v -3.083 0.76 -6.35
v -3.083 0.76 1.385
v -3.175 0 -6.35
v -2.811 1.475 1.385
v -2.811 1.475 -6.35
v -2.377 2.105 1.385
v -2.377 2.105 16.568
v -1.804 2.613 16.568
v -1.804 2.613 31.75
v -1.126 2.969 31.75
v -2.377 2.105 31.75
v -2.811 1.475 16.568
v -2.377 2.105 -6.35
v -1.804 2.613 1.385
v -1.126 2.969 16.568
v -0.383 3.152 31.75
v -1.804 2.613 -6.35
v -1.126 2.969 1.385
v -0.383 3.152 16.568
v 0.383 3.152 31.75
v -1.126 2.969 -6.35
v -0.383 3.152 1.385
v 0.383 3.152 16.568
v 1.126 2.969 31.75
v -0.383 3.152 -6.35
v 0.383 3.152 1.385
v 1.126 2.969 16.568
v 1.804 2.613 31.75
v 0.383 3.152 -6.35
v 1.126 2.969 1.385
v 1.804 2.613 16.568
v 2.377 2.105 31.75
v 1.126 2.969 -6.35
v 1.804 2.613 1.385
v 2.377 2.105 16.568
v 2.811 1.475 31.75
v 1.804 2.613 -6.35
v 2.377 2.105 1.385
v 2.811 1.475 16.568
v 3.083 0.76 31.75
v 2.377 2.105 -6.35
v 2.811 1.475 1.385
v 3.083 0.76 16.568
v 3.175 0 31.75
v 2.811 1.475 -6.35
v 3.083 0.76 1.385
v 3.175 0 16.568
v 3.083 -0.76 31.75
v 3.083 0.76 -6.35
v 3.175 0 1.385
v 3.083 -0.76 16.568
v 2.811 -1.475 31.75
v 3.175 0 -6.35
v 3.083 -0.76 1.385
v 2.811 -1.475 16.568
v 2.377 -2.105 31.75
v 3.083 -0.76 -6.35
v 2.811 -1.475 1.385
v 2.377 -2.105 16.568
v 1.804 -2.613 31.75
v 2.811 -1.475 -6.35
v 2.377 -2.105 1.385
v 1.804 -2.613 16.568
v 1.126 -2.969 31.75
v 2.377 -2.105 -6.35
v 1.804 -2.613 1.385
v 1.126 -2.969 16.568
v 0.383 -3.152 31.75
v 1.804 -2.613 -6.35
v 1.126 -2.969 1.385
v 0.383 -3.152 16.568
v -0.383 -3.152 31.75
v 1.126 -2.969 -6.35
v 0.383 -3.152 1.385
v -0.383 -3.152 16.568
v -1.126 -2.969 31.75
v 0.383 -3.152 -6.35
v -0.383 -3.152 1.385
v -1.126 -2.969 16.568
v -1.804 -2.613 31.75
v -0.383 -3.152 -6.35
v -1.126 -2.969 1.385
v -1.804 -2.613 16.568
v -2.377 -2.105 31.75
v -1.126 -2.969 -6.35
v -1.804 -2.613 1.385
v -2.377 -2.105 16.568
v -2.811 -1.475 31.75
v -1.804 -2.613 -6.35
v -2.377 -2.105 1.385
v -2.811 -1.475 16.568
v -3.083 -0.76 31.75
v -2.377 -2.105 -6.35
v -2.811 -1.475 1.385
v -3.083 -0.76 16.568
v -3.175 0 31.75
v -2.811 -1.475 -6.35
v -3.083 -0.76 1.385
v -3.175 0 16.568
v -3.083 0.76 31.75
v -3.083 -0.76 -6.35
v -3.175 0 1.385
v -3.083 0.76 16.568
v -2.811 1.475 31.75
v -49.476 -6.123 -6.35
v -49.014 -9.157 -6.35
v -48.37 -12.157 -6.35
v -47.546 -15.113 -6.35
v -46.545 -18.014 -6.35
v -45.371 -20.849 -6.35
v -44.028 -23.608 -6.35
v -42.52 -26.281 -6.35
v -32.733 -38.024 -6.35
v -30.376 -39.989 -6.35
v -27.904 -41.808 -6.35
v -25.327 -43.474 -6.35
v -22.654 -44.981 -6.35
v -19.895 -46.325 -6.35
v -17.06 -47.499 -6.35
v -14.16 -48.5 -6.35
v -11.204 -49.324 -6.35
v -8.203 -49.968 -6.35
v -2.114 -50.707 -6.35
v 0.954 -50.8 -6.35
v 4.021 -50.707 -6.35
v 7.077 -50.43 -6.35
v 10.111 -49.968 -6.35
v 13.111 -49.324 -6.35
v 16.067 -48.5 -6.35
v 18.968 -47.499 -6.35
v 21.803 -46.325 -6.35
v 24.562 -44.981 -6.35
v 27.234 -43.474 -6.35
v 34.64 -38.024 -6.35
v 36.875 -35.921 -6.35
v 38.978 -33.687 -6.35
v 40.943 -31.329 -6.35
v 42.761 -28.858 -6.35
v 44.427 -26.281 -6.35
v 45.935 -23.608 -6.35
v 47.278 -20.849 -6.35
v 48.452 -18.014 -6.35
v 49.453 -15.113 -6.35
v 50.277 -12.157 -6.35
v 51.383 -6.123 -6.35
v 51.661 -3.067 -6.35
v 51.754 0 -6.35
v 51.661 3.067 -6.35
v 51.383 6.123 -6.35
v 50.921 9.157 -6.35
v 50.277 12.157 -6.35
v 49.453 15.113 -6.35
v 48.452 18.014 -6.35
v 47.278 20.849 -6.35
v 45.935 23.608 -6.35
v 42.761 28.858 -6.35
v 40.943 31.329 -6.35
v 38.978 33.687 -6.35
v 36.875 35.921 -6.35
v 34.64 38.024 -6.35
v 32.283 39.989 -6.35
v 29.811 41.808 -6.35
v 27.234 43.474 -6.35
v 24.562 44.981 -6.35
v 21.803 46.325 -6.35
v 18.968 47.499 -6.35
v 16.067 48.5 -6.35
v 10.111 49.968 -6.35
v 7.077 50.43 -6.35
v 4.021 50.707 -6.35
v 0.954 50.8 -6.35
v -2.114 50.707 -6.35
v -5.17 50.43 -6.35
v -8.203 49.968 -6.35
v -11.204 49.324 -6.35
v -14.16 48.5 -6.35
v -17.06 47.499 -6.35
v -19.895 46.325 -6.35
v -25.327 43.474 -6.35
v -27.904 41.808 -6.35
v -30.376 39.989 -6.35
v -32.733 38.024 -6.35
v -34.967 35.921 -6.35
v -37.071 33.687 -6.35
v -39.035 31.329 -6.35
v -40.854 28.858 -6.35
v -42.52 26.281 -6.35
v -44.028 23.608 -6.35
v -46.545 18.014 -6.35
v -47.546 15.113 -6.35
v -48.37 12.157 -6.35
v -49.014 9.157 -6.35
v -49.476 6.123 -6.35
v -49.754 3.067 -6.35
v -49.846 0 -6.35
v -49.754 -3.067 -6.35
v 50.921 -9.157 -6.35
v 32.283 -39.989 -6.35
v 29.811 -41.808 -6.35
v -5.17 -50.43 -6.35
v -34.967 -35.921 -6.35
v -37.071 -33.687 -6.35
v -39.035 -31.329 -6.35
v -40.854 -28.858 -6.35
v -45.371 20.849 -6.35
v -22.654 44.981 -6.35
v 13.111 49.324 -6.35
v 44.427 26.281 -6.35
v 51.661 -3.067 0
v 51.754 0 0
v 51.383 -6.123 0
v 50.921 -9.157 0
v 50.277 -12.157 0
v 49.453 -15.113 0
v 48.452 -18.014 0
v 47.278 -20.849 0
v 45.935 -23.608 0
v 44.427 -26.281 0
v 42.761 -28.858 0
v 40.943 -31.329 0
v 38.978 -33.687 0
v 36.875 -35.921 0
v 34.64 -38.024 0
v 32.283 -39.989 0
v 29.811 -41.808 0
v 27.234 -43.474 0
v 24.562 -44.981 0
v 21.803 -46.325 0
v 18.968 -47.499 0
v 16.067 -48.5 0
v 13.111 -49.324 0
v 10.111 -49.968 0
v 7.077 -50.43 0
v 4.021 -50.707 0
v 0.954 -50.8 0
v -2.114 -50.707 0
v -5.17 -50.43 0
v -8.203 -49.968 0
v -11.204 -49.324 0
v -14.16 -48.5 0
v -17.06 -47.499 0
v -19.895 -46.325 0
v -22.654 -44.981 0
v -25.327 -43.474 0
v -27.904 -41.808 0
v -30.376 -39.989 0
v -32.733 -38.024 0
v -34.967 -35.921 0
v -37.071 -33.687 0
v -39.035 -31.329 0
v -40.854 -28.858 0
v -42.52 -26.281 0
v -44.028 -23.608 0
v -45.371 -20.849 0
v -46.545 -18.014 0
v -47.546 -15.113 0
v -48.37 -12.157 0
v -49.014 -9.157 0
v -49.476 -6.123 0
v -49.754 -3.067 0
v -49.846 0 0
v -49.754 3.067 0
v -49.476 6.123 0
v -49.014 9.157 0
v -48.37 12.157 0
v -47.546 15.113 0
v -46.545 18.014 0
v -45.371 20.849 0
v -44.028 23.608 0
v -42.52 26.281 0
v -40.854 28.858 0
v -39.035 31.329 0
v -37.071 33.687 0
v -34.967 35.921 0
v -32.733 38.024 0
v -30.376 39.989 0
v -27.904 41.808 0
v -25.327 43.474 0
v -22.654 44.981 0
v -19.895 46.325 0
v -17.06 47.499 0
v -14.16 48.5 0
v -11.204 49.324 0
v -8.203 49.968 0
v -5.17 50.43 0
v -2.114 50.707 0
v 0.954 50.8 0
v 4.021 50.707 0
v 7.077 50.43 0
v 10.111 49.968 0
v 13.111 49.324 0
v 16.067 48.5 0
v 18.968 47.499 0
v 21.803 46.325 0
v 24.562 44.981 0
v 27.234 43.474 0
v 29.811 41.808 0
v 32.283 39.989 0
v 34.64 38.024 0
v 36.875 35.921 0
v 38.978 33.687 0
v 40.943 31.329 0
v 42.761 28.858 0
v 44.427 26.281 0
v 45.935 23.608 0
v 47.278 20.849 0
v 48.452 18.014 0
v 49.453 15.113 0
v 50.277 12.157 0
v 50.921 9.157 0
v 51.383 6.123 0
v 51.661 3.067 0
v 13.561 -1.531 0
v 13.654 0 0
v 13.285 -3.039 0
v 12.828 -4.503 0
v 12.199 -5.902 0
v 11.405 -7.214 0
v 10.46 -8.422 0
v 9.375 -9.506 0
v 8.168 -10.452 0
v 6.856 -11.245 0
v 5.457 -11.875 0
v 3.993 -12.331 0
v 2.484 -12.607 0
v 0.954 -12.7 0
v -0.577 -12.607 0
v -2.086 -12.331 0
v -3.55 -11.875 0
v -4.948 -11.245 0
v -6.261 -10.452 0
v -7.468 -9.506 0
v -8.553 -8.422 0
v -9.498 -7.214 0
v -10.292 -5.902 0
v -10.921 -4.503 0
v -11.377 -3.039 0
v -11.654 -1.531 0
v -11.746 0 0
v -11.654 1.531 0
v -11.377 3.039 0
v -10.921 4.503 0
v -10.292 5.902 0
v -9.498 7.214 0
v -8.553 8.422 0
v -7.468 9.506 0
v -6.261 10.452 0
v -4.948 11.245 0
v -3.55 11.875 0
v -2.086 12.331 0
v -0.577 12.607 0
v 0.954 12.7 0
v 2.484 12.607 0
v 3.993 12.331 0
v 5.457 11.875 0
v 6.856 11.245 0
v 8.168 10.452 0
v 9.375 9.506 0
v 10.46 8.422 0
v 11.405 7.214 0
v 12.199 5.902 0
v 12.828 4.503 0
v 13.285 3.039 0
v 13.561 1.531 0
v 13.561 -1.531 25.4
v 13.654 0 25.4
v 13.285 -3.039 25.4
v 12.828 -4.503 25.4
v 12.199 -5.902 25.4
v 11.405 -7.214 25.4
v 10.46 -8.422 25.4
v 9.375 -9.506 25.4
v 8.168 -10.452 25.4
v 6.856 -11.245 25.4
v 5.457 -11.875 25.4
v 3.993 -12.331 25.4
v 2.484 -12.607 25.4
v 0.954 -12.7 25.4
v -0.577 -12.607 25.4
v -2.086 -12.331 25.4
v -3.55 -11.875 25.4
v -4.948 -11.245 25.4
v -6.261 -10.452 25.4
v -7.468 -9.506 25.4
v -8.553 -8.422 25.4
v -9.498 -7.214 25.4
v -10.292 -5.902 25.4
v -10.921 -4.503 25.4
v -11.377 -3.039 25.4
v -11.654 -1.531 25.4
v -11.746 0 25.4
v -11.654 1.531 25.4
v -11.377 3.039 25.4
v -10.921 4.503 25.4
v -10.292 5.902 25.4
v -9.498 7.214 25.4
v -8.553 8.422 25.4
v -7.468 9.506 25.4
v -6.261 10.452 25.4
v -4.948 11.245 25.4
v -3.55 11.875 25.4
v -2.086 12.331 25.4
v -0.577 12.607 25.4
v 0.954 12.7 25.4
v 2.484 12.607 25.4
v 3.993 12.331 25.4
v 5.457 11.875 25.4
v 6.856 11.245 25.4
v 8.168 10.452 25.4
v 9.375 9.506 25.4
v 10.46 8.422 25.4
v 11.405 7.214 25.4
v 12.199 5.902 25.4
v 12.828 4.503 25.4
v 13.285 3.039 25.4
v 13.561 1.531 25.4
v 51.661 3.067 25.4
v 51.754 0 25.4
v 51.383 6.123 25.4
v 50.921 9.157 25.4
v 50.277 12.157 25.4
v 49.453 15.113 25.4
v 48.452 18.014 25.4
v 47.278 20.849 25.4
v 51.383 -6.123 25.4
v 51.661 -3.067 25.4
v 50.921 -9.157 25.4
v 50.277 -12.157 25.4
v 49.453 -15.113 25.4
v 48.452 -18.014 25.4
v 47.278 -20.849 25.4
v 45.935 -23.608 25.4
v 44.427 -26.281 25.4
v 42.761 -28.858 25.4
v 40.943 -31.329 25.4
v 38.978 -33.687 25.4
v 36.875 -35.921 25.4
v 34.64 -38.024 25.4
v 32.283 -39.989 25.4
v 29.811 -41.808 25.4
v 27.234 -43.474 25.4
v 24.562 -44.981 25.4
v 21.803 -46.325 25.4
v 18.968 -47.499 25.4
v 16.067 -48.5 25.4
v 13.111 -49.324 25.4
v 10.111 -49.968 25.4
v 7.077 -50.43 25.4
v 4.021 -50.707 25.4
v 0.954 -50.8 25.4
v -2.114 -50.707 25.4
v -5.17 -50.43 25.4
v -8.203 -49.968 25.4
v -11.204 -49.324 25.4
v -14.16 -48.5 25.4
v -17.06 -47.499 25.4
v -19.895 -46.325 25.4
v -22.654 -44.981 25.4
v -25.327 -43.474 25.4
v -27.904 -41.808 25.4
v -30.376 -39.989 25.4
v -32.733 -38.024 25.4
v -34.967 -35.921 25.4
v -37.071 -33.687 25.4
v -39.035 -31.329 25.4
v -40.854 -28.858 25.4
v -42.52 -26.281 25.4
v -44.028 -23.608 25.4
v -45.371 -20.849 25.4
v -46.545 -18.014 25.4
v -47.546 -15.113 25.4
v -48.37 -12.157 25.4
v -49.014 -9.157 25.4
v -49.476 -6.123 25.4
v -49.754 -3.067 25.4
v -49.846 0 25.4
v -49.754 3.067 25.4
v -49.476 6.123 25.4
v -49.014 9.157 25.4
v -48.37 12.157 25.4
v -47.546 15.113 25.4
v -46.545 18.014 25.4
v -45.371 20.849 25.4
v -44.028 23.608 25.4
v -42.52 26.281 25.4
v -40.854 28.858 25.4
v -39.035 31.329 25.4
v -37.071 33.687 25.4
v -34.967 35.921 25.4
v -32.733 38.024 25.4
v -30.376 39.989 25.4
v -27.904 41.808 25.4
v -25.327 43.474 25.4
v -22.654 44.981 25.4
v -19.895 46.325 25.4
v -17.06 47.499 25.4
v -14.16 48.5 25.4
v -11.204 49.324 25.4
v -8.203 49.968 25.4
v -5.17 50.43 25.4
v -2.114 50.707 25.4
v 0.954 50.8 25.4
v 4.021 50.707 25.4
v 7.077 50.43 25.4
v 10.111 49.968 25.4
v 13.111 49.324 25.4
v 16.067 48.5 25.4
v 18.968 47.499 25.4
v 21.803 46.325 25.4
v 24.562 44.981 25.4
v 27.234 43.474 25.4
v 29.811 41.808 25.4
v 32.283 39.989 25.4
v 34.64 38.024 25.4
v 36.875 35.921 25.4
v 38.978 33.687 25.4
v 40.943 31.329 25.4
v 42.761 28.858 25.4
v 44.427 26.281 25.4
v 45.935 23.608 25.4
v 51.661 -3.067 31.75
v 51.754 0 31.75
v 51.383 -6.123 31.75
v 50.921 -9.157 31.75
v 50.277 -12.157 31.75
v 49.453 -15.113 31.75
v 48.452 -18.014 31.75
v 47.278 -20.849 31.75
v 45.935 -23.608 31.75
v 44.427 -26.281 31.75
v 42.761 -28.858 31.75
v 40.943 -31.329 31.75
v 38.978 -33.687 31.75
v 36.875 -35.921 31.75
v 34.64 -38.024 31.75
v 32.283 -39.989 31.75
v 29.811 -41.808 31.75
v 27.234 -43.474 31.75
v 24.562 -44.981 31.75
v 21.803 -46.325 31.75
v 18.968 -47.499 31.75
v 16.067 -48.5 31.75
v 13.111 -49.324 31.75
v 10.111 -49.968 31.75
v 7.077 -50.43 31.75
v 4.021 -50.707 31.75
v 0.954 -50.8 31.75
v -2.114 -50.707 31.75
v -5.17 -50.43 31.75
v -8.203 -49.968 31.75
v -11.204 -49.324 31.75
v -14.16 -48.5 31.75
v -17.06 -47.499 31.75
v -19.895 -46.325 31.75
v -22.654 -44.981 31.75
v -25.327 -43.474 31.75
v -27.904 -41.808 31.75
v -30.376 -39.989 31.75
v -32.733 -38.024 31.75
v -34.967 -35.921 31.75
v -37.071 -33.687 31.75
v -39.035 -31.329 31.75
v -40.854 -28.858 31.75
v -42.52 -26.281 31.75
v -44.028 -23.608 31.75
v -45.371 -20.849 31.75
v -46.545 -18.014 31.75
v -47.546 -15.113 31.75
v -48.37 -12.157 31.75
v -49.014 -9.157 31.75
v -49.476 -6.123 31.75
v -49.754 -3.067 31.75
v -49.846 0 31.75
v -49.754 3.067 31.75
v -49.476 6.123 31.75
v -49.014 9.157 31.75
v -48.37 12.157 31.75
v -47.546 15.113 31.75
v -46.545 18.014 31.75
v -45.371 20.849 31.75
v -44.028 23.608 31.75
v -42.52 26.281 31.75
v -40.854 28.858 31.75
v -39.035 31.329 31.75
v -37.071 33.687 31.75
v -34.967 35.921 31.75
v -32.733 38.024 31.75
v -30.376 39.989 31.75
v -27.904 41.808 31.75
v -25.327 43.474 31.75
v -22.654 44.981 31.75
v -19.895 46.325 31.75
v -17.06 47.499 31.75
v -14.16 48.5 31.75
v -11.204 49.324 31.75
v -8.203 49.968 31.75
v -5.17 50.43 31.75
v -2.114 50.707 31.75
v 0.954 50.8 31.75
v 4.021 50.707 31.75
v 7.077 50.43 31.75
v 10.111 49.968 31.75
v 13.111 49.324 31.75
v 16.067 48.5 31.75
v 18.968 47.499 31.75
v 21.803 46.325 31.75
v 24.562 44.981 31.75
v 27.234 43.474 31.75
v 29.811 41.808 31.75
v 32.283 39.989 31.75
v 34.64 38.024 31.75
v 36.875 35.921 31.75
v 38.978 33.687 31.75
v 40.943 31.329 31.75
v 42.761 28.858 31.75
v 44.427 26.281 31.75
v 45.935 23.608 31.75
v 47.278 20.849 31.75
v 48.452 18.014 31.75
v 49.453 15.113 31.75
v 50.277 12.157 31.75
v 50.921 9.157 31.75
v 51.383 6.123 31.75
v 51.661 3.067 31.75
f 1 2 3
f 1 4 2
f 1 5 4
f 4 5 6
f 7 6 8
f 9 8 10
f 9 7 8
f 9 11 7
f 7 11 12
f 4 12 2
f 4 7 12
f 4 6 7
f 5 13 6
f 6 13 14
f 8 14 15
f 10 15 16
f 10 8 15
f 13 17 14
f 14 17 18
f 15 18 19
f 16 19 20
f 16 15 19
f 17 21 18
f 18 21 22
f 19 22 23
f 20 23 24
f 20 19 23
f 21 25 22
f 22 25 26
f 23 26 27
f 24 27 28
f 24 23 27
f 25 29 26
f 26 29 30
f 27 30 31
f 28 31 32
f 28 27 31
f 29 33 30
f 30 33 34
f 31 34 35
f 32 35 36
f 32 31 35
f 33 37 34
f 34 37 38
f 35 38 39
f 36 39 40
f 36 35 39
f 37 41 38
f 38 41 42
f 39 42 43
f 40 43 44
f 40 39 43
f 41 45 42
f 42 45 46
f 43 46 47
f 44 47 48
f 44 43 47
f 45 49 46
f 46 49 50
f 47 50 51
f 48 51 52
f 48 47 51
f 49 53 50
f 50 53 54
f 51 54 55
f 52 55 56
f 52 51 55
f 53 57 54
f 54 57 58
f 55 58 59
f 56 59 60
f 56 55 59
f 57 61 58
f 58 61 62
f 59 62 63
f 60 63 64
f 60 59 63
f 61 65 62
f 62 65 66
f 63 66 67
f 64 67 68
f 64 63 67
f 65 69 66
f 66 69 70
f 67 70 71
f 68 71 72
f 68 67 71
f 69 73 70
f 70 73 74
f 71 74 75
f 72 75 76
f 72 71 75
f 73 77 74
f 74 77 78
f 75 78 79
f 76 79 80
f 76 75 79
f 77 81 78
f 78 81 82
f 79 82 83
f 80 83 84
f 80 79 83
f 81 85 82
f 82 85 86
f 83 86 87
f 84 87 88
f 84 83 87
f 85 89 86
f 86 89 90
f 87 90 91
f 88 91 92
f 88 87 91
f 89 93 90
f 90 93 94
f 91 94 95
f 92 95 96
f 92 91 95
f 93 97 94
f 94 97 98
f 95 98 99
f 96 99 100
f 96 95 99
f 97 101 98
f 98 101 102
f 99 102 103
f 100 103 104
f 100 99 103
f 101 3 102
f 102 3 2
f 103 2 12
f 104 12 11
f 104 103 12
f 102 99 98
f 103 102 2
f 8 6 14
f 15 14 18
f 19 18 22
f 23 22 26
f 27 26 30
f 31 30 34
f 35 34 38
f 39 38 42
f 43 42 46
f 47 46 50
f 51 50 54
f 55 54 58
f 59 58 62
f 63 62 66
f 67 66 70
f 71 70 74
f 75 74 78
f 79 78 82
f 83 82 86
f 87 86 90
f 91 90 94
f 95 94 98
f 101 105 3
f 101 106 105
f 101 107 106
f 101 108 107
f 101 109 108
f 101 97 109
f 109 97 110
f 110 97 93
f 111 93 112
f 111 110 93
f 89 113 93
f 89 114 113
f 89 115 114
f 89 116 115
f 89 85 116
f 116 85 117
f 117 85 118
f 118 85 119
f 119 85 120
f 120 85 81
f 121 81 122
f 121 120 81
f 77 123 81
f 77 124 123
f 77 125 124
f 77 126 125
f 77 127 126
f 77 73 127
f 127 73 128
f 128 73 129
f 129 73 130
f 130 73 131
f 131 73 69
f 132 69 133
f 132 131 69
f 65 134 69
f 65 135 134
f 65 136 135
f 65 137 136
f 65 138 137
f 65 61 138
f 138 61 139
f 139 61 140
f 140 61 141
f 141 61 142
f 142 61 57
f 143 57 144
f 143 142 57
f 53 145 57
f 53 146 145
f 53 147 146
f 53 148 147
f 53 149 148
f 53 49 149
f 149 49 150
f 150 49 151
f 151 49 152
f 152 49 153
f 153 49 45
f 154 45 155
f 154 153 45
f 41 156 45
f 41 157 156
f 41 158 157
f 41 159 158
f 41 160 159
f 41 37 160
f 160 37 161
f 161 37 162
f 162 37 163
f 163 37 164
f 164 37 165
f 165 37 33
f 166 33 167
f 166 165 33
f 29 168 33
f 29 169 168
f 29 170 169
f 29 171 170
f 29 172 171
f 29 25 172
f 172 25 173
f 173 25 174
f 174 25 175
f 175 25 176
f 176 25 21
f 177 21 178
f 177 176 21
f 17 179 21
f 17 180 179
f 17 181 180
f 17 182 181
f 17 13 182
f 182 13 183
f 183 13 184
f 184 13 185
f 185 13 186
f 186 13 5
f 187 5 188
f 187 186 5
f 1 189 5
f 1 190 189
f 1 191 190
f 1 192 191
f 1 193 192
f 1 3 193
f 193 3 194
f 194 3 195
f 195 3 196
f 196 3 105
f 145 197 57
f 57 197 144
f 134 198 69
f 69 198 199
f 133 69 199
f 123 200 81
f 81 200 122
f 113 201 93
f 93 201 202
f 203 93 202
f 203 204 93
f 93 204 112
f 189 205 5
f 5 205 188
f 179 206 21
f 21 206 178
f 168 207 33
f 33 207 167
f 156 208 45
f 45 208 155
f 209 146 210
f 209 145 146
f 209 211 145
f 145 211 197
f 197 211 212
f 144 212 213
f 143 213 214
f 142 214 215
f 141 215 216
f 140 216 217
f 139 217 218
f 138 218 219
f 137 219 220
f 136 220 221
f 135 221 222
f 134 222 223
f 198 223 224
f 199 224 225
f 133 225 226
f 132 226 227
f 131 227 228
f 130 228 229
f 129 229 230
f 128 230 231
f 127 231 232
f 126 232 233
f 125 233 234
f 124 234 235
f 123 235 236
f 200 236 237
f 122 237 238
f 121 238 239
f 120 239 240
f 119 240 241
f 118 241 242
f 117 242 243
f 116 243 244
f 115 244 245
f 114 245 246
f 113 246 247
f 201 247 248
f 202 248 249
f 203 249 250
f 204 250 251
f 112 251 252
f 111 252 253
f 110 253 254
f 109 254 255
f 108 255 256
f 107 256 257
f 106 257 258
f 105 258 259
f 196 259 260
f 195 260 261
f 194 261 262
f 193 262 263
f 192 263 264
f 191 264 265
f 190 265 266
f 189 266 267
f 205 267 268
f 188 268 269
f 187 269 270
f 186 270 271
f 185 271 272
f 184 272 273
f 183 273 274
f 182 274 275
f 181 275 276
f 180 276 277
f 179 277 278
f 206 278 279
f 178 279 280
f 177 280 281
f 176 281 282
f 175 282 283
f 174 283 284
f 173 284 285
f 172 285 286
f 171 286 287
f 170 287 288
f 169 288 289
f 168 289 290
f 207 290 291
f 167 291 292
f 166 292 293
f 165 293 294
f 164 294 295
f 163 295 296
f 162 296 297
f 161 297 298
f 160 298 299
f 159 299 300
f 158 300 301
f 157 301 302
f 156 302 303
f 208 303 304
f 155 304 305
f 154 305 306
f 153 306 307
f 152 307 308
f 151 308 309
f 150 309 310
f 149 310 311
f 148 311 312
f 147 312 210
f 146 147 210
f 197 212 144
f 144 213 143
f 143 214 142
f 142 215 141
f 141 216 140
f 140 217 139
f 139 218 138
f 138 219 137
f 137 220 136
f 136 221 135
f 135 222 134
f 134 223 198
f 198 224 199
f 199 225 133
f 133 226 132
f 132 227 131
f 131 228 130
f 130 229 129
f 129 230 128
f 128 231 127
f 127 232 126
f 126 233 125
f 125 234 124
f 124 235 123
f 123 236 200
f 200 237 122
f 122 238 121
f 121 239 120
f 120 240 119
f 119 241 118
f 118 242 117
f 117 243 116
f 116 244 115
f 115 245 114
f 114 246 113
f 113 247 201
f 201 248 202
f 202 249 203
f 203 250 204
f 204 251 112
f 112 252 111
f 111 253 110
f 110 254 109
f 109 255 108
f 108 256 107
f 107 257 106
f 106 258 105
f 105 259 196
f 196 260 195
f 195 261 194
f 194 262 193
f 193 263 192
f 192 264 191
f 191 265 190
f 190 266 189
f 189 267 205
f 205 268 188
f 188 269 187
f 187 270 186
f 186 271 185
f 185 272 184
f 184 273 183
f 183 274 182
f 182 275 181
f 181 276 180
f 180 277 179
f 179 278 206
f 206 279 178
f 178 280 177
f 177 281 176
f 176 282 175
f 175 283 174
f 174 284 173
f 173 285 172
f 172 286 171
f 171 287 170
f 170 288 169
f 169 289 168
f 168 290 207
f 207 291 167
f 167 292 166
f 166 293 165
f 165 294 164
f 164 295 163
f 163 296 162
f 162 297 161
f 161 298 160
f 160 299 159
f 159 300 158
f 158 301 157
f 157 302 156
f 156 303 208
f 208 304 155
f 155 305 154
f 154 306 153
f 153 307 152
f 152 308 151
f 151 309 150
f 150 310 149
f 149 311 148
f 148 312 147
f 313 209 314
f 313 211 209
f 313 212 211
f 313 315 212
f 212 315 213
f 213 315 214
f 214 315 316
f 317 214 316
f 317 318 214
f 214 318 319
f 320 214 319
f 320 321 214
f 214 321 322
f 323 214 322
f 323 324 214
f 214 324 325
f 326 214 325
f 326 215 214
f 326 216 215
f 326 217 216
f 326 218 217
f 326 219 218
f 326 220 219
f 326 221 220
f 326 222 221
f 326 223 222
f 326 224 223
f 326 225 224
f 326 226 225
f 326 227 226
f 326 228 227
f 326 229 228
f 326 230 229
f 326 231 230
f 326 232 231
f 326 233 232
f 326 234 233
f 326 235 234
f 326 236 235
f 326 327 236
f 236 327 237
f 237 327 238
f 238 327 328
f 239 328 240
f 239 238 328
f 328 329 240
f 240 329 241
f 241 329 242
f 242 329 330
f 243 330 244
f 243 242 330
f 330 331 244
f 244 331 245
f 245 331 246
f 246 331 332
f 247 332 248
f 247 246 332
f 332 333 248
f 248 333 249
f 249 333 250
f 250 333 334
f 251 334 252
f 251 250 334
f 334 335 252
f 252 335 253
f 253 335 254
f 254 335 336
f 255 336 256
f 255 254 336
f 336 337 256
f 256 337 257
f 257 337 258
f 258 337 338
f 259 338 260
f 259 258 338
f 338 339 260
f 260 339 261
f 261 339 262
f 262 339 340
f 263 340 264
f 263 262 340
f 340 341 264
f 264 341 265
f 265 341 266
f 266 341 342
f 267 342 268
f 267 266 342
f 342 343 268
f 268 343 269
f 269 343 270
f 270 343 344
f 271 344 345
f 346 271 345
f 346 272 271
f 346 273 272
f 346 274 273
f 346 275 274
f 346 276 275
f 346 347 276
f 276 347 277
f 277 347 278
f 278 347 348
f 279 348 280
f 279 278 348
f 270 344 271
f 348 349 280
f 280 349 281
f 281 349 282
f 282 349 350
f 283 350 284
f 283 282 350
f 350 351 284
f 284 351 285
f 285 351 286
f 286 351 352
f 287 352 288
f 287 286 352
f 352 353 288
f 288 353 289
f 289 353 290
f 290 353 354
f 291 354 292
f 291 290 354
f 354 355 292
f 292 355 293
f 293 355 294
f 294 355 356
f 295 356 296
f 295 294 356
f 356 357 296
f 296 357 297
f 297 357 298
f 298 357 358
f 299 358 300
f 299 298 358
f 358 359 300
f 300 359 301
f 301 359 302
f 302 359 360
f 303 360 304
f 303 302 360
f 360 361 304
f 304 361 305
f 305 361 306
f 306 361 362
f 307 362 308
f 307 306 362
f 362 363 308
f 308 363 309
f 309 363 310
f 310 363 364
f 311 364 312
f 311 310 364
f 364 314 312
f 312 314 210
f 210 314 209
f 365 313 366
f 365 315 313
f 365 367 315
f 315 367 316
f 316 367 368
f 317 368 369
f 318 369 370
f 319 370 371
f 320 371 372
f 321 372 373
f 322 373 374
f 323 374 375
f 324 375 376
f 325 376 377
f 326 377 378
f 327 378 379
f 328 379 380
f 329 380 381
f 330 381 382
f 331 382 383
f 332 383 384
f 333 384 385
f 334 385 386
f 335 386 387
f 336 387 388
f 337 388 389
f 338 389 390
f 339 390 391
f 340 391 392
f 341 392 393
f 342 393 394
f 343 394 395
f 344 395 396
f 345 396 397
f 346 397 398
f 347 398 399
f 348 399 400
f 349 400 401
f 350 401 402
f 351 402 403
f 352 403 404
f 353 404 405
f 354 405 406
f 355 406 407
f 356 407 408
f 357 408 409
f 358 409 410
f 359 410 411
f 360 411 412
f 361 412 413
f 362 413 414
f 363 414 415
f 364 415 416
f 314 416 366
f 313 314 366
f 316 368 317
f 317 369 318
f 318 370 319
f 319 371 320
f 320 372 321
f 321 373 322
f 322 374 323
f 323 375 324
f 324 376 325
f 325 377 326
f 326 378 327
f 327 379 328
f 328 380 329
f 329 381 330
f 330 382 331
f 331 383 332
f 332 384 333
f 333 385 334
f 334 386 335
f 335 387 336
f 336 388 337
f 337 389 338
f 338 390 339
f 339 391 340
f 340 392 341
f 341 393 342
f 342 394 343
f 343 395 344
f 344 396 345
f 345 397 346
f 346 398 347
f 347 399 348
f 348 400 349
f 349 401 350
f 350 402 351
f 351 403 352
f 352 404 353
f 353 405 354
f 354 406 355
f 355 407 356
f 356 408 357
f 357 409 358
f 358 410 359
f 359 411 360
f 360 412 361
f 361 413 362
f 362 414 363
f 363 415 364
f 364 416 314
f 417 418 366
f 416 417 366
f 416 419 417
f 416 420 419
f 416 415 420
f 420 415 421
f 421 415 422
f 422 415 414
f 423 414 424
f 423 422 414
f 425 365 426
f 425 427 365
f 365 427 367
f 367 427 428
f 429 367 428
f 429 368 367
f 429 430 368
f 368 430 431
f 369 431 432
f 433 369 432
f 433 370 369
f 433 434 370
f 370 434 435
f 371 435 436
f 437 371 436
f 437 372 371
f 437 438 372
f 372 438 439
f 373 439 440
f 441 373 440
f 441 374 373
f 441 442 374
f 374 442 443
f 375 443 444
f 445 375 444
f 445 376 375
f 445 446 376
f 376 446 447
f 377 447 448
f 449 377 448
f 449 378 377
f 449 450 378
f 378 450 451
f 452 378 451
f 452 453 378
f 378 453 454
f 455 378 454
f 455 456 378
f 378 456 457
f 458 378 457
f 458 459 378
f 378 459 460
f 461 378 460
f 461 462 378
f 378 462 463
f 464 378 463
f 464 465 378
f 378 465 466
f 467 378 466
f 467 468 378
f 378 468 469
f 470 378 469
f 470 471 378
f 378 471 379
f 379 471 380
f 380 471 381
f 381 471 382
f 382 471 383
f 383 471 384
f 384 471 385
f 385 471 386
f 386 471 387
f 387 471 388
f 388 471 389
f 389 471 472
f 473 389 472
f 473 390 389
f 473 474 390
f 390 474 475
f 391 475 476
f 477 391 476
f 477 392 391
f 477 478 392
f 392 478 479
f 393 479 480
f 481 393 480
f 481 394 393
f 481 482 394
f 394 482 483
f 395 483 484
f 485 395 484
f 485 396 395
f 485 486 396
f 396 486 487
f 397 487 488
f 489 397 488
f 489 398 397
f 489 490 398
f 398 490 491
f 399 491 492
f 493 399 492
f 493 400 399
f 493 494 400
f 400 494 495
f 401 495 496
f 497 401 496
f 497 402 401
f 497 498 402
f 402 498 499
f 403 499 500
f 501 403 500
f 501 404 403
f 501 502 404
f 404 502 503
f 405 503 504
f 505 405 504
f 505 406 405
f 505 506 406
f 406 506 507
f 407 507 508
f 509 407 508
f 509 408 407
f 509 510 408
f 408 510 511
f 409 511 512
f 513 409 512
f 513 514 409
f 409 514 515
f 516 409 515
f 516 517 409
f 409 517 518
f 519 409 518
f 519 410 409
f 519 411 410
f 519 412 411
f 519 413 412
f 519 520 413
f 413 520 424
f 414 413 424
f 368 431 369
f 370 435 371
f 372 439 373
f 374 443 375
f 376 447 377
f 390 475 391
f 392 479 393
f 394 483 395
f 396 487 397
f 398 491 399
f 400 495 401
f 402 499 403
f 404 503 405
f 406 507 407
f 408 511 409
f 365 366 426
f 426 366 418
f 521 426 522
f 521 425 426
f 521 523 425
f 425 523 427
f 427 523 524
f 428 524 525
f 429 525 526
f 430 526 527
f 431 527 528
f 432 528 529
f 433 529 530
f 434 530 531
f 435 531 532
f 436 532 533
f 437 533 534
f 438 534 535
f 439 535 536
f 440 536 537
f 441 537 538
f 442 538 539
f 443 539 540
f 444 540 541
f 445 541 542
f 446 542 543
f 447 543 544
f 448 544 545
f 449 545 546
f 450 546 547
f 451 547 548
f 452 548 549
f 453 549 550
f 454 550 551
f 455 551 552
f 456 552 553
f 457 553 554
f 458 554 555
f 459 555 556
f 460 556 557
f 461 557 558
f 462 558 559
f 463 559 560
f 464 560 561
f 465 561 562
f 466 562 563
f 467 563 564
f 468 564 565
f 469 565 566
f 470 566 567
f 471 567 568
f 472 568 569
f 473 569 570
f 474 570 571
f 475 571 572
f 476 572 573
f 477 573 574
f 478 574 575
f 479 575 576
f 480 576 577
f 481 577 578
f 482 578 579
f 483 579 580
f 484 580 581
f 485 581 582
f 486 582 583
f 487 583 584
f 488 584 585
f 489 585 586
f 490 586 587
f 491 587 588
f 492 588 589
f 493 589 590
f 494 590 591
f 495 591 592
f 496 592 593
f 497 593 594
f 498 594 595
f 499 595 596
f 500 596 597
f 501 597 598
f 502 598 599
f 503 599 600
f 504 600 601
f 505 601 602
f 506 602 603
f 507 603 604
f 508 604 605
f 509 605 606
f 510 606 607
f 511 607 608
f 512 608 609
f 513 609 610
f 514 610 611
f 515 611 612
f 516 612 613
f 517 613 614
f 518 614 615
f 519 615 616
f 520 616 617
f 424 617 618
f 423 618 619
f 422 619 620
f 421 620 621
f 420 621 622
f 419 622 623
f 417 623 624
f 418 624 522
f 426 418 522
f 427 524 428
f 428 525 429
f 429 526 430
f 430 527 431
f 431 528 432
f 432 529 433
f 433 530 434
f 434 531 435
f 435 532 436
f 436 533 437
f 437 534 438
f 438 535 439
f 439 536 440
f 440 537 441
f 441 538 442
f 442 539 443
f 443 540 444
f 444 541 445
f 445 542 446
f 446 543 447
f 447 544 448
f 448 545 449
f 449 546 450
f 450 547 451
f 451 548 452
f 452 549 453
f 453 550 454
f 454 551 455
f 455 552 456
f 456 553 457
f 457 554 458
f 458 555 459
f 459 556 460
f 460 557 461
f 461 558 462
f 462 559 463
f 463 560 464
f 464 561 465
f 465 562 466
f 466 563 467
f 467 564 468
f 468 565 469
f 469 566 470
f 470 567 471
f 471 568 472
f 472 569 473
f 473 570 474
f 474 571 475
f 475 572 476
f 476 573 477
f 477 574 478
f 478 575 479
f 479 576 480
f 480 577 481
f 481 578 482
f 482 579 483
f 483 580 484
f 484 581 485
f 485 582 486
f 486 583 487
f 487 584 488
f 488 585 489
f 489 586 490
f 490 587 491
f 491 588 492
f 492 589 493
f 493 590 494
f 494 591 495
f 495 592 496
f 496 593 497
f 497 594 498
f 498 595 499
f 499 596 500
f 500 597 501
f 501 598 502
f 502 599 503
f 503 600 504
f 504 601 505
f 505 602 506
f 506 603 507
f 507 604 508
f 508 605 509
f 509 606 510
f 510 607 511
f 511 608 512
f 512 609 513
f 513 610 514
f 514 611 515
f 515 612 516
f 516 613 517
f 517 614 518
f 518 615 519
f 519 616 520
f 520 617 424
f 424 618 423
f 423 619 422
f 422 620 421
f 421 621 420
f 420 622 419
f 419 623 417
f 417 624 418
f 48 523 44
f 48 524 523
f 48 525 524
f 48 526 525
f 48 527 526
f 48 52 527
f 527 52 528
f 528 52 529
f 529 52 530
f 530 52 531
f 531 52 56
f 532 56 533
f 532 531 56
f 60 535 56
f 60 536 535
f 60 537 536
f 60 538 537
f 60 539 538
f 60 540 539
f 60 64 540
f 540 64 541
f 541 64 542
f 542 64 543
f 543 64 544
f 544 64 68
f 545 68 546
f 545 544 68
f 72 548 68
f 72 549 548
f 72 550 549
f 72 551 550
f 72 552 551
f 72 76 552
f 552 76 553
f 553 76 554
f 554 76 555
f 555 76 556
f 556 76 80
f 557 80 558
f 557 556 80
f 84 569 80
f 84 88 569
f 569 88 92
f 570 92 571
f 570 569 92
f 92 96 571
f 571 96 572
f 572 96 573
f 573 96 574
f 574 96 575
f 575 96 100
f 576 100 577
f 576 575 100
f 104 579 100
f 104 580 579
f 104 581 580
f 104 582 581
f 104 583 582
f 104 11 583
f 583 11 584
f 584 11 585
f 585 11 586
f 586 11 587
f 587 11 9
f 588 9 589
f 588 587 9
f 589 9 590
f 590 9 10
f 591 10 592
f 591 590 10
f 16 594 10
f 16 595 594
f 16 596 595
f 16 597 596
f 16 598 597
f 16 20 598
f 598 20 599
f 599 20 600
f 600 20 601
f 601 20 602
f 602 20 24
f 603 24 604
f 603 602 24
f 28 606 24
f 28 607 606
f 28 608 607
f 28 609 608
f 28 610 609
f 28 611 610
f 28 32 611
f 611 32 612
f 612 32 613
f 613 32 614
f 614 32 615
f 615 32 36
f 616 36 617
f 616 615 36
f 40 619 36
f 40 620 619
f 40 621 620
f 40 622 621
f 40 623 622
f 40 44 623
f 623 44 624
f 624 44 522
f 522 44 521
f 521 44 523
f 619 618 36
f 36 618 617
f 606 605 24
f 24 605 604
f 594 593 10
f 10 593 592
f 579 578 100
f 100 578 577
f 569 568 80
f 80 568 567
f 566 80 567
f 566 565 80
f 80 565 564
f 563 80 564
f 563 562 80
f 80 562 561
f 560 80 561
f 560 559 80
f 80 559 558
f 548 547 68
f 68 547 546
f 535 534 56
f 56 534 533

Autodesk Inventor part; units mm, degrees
ref_plane "YZ Plane" through (0, 0, 0) normal (1, 0, 0) x (0, 1, 0)
ref_plane "XZ Plane" through (0, 0, 0) normal (0, 1, 0) x (-1, 0, 0)
ref_plane "XY Plane" through (0, 0, 0) normal (0, 0, 1) x (1, 0, 0)
sketch "Sketch1" plane through (0, 0, 0) normal (0, 1, 0) x (-1, 0, 0)
  point P0 (0, 0)
sketch "Sketch2" plane through (0, 0, 0) normal (0, 1, 0) x (-1, 0, 0)
  line L0 (-51.7536, 0) -> (-51.7536, -6.35)
  line L1 (-51.7536, -6.35) -> (-0.9536, -6.35)
  line L2 (-0.9536, -6.35) -> (-0.9536, 6.35)
  line L3 (-13.6536, 0) -> (-13.6536, 25.4)
  line L4 (-0.9536, 25.4) -> (-0.9536, 6.35)
  line L5 (-13.6536, 0) -> (-51.7536, 0)
  line L6 (-51.7536, 25.4) -> (-51.7536, 31.75)
  line L7 (-51.7536, 31.75) -> (-0.9536, 31.75)
  line L8 (-0.9536, 31.75) -> (-0.9536, 25.4)
  line L9 (-13.6536, 25.4) -> (-51.7536, 25.4)
  point P0 (0, 0)
  dimension "d0" = 50.8
  dimension "d1" = 6.35
  dimension "d2" = 12.7
  dimension "d3" = 25.4
  dimension "d5" = 6.35
revolve "Revolution1" add sketch "Sketch2" angle 360 about axis through (0.9536, 0, 25.4) along (0, 0, -1)
sketch "Sketch3" plane through (0.9536, 0, 31.75) normal (0, 0, 1) x (1, 0, 0)
  circle A0 centre (0, 0) radius 50.8 projected
  point P0 (-0.9536, 0)
hole "Hole1" at (0, 0, 31.75) direction (0, 0, -1) diameter 6.35 end through all
properties part number "spool model"
